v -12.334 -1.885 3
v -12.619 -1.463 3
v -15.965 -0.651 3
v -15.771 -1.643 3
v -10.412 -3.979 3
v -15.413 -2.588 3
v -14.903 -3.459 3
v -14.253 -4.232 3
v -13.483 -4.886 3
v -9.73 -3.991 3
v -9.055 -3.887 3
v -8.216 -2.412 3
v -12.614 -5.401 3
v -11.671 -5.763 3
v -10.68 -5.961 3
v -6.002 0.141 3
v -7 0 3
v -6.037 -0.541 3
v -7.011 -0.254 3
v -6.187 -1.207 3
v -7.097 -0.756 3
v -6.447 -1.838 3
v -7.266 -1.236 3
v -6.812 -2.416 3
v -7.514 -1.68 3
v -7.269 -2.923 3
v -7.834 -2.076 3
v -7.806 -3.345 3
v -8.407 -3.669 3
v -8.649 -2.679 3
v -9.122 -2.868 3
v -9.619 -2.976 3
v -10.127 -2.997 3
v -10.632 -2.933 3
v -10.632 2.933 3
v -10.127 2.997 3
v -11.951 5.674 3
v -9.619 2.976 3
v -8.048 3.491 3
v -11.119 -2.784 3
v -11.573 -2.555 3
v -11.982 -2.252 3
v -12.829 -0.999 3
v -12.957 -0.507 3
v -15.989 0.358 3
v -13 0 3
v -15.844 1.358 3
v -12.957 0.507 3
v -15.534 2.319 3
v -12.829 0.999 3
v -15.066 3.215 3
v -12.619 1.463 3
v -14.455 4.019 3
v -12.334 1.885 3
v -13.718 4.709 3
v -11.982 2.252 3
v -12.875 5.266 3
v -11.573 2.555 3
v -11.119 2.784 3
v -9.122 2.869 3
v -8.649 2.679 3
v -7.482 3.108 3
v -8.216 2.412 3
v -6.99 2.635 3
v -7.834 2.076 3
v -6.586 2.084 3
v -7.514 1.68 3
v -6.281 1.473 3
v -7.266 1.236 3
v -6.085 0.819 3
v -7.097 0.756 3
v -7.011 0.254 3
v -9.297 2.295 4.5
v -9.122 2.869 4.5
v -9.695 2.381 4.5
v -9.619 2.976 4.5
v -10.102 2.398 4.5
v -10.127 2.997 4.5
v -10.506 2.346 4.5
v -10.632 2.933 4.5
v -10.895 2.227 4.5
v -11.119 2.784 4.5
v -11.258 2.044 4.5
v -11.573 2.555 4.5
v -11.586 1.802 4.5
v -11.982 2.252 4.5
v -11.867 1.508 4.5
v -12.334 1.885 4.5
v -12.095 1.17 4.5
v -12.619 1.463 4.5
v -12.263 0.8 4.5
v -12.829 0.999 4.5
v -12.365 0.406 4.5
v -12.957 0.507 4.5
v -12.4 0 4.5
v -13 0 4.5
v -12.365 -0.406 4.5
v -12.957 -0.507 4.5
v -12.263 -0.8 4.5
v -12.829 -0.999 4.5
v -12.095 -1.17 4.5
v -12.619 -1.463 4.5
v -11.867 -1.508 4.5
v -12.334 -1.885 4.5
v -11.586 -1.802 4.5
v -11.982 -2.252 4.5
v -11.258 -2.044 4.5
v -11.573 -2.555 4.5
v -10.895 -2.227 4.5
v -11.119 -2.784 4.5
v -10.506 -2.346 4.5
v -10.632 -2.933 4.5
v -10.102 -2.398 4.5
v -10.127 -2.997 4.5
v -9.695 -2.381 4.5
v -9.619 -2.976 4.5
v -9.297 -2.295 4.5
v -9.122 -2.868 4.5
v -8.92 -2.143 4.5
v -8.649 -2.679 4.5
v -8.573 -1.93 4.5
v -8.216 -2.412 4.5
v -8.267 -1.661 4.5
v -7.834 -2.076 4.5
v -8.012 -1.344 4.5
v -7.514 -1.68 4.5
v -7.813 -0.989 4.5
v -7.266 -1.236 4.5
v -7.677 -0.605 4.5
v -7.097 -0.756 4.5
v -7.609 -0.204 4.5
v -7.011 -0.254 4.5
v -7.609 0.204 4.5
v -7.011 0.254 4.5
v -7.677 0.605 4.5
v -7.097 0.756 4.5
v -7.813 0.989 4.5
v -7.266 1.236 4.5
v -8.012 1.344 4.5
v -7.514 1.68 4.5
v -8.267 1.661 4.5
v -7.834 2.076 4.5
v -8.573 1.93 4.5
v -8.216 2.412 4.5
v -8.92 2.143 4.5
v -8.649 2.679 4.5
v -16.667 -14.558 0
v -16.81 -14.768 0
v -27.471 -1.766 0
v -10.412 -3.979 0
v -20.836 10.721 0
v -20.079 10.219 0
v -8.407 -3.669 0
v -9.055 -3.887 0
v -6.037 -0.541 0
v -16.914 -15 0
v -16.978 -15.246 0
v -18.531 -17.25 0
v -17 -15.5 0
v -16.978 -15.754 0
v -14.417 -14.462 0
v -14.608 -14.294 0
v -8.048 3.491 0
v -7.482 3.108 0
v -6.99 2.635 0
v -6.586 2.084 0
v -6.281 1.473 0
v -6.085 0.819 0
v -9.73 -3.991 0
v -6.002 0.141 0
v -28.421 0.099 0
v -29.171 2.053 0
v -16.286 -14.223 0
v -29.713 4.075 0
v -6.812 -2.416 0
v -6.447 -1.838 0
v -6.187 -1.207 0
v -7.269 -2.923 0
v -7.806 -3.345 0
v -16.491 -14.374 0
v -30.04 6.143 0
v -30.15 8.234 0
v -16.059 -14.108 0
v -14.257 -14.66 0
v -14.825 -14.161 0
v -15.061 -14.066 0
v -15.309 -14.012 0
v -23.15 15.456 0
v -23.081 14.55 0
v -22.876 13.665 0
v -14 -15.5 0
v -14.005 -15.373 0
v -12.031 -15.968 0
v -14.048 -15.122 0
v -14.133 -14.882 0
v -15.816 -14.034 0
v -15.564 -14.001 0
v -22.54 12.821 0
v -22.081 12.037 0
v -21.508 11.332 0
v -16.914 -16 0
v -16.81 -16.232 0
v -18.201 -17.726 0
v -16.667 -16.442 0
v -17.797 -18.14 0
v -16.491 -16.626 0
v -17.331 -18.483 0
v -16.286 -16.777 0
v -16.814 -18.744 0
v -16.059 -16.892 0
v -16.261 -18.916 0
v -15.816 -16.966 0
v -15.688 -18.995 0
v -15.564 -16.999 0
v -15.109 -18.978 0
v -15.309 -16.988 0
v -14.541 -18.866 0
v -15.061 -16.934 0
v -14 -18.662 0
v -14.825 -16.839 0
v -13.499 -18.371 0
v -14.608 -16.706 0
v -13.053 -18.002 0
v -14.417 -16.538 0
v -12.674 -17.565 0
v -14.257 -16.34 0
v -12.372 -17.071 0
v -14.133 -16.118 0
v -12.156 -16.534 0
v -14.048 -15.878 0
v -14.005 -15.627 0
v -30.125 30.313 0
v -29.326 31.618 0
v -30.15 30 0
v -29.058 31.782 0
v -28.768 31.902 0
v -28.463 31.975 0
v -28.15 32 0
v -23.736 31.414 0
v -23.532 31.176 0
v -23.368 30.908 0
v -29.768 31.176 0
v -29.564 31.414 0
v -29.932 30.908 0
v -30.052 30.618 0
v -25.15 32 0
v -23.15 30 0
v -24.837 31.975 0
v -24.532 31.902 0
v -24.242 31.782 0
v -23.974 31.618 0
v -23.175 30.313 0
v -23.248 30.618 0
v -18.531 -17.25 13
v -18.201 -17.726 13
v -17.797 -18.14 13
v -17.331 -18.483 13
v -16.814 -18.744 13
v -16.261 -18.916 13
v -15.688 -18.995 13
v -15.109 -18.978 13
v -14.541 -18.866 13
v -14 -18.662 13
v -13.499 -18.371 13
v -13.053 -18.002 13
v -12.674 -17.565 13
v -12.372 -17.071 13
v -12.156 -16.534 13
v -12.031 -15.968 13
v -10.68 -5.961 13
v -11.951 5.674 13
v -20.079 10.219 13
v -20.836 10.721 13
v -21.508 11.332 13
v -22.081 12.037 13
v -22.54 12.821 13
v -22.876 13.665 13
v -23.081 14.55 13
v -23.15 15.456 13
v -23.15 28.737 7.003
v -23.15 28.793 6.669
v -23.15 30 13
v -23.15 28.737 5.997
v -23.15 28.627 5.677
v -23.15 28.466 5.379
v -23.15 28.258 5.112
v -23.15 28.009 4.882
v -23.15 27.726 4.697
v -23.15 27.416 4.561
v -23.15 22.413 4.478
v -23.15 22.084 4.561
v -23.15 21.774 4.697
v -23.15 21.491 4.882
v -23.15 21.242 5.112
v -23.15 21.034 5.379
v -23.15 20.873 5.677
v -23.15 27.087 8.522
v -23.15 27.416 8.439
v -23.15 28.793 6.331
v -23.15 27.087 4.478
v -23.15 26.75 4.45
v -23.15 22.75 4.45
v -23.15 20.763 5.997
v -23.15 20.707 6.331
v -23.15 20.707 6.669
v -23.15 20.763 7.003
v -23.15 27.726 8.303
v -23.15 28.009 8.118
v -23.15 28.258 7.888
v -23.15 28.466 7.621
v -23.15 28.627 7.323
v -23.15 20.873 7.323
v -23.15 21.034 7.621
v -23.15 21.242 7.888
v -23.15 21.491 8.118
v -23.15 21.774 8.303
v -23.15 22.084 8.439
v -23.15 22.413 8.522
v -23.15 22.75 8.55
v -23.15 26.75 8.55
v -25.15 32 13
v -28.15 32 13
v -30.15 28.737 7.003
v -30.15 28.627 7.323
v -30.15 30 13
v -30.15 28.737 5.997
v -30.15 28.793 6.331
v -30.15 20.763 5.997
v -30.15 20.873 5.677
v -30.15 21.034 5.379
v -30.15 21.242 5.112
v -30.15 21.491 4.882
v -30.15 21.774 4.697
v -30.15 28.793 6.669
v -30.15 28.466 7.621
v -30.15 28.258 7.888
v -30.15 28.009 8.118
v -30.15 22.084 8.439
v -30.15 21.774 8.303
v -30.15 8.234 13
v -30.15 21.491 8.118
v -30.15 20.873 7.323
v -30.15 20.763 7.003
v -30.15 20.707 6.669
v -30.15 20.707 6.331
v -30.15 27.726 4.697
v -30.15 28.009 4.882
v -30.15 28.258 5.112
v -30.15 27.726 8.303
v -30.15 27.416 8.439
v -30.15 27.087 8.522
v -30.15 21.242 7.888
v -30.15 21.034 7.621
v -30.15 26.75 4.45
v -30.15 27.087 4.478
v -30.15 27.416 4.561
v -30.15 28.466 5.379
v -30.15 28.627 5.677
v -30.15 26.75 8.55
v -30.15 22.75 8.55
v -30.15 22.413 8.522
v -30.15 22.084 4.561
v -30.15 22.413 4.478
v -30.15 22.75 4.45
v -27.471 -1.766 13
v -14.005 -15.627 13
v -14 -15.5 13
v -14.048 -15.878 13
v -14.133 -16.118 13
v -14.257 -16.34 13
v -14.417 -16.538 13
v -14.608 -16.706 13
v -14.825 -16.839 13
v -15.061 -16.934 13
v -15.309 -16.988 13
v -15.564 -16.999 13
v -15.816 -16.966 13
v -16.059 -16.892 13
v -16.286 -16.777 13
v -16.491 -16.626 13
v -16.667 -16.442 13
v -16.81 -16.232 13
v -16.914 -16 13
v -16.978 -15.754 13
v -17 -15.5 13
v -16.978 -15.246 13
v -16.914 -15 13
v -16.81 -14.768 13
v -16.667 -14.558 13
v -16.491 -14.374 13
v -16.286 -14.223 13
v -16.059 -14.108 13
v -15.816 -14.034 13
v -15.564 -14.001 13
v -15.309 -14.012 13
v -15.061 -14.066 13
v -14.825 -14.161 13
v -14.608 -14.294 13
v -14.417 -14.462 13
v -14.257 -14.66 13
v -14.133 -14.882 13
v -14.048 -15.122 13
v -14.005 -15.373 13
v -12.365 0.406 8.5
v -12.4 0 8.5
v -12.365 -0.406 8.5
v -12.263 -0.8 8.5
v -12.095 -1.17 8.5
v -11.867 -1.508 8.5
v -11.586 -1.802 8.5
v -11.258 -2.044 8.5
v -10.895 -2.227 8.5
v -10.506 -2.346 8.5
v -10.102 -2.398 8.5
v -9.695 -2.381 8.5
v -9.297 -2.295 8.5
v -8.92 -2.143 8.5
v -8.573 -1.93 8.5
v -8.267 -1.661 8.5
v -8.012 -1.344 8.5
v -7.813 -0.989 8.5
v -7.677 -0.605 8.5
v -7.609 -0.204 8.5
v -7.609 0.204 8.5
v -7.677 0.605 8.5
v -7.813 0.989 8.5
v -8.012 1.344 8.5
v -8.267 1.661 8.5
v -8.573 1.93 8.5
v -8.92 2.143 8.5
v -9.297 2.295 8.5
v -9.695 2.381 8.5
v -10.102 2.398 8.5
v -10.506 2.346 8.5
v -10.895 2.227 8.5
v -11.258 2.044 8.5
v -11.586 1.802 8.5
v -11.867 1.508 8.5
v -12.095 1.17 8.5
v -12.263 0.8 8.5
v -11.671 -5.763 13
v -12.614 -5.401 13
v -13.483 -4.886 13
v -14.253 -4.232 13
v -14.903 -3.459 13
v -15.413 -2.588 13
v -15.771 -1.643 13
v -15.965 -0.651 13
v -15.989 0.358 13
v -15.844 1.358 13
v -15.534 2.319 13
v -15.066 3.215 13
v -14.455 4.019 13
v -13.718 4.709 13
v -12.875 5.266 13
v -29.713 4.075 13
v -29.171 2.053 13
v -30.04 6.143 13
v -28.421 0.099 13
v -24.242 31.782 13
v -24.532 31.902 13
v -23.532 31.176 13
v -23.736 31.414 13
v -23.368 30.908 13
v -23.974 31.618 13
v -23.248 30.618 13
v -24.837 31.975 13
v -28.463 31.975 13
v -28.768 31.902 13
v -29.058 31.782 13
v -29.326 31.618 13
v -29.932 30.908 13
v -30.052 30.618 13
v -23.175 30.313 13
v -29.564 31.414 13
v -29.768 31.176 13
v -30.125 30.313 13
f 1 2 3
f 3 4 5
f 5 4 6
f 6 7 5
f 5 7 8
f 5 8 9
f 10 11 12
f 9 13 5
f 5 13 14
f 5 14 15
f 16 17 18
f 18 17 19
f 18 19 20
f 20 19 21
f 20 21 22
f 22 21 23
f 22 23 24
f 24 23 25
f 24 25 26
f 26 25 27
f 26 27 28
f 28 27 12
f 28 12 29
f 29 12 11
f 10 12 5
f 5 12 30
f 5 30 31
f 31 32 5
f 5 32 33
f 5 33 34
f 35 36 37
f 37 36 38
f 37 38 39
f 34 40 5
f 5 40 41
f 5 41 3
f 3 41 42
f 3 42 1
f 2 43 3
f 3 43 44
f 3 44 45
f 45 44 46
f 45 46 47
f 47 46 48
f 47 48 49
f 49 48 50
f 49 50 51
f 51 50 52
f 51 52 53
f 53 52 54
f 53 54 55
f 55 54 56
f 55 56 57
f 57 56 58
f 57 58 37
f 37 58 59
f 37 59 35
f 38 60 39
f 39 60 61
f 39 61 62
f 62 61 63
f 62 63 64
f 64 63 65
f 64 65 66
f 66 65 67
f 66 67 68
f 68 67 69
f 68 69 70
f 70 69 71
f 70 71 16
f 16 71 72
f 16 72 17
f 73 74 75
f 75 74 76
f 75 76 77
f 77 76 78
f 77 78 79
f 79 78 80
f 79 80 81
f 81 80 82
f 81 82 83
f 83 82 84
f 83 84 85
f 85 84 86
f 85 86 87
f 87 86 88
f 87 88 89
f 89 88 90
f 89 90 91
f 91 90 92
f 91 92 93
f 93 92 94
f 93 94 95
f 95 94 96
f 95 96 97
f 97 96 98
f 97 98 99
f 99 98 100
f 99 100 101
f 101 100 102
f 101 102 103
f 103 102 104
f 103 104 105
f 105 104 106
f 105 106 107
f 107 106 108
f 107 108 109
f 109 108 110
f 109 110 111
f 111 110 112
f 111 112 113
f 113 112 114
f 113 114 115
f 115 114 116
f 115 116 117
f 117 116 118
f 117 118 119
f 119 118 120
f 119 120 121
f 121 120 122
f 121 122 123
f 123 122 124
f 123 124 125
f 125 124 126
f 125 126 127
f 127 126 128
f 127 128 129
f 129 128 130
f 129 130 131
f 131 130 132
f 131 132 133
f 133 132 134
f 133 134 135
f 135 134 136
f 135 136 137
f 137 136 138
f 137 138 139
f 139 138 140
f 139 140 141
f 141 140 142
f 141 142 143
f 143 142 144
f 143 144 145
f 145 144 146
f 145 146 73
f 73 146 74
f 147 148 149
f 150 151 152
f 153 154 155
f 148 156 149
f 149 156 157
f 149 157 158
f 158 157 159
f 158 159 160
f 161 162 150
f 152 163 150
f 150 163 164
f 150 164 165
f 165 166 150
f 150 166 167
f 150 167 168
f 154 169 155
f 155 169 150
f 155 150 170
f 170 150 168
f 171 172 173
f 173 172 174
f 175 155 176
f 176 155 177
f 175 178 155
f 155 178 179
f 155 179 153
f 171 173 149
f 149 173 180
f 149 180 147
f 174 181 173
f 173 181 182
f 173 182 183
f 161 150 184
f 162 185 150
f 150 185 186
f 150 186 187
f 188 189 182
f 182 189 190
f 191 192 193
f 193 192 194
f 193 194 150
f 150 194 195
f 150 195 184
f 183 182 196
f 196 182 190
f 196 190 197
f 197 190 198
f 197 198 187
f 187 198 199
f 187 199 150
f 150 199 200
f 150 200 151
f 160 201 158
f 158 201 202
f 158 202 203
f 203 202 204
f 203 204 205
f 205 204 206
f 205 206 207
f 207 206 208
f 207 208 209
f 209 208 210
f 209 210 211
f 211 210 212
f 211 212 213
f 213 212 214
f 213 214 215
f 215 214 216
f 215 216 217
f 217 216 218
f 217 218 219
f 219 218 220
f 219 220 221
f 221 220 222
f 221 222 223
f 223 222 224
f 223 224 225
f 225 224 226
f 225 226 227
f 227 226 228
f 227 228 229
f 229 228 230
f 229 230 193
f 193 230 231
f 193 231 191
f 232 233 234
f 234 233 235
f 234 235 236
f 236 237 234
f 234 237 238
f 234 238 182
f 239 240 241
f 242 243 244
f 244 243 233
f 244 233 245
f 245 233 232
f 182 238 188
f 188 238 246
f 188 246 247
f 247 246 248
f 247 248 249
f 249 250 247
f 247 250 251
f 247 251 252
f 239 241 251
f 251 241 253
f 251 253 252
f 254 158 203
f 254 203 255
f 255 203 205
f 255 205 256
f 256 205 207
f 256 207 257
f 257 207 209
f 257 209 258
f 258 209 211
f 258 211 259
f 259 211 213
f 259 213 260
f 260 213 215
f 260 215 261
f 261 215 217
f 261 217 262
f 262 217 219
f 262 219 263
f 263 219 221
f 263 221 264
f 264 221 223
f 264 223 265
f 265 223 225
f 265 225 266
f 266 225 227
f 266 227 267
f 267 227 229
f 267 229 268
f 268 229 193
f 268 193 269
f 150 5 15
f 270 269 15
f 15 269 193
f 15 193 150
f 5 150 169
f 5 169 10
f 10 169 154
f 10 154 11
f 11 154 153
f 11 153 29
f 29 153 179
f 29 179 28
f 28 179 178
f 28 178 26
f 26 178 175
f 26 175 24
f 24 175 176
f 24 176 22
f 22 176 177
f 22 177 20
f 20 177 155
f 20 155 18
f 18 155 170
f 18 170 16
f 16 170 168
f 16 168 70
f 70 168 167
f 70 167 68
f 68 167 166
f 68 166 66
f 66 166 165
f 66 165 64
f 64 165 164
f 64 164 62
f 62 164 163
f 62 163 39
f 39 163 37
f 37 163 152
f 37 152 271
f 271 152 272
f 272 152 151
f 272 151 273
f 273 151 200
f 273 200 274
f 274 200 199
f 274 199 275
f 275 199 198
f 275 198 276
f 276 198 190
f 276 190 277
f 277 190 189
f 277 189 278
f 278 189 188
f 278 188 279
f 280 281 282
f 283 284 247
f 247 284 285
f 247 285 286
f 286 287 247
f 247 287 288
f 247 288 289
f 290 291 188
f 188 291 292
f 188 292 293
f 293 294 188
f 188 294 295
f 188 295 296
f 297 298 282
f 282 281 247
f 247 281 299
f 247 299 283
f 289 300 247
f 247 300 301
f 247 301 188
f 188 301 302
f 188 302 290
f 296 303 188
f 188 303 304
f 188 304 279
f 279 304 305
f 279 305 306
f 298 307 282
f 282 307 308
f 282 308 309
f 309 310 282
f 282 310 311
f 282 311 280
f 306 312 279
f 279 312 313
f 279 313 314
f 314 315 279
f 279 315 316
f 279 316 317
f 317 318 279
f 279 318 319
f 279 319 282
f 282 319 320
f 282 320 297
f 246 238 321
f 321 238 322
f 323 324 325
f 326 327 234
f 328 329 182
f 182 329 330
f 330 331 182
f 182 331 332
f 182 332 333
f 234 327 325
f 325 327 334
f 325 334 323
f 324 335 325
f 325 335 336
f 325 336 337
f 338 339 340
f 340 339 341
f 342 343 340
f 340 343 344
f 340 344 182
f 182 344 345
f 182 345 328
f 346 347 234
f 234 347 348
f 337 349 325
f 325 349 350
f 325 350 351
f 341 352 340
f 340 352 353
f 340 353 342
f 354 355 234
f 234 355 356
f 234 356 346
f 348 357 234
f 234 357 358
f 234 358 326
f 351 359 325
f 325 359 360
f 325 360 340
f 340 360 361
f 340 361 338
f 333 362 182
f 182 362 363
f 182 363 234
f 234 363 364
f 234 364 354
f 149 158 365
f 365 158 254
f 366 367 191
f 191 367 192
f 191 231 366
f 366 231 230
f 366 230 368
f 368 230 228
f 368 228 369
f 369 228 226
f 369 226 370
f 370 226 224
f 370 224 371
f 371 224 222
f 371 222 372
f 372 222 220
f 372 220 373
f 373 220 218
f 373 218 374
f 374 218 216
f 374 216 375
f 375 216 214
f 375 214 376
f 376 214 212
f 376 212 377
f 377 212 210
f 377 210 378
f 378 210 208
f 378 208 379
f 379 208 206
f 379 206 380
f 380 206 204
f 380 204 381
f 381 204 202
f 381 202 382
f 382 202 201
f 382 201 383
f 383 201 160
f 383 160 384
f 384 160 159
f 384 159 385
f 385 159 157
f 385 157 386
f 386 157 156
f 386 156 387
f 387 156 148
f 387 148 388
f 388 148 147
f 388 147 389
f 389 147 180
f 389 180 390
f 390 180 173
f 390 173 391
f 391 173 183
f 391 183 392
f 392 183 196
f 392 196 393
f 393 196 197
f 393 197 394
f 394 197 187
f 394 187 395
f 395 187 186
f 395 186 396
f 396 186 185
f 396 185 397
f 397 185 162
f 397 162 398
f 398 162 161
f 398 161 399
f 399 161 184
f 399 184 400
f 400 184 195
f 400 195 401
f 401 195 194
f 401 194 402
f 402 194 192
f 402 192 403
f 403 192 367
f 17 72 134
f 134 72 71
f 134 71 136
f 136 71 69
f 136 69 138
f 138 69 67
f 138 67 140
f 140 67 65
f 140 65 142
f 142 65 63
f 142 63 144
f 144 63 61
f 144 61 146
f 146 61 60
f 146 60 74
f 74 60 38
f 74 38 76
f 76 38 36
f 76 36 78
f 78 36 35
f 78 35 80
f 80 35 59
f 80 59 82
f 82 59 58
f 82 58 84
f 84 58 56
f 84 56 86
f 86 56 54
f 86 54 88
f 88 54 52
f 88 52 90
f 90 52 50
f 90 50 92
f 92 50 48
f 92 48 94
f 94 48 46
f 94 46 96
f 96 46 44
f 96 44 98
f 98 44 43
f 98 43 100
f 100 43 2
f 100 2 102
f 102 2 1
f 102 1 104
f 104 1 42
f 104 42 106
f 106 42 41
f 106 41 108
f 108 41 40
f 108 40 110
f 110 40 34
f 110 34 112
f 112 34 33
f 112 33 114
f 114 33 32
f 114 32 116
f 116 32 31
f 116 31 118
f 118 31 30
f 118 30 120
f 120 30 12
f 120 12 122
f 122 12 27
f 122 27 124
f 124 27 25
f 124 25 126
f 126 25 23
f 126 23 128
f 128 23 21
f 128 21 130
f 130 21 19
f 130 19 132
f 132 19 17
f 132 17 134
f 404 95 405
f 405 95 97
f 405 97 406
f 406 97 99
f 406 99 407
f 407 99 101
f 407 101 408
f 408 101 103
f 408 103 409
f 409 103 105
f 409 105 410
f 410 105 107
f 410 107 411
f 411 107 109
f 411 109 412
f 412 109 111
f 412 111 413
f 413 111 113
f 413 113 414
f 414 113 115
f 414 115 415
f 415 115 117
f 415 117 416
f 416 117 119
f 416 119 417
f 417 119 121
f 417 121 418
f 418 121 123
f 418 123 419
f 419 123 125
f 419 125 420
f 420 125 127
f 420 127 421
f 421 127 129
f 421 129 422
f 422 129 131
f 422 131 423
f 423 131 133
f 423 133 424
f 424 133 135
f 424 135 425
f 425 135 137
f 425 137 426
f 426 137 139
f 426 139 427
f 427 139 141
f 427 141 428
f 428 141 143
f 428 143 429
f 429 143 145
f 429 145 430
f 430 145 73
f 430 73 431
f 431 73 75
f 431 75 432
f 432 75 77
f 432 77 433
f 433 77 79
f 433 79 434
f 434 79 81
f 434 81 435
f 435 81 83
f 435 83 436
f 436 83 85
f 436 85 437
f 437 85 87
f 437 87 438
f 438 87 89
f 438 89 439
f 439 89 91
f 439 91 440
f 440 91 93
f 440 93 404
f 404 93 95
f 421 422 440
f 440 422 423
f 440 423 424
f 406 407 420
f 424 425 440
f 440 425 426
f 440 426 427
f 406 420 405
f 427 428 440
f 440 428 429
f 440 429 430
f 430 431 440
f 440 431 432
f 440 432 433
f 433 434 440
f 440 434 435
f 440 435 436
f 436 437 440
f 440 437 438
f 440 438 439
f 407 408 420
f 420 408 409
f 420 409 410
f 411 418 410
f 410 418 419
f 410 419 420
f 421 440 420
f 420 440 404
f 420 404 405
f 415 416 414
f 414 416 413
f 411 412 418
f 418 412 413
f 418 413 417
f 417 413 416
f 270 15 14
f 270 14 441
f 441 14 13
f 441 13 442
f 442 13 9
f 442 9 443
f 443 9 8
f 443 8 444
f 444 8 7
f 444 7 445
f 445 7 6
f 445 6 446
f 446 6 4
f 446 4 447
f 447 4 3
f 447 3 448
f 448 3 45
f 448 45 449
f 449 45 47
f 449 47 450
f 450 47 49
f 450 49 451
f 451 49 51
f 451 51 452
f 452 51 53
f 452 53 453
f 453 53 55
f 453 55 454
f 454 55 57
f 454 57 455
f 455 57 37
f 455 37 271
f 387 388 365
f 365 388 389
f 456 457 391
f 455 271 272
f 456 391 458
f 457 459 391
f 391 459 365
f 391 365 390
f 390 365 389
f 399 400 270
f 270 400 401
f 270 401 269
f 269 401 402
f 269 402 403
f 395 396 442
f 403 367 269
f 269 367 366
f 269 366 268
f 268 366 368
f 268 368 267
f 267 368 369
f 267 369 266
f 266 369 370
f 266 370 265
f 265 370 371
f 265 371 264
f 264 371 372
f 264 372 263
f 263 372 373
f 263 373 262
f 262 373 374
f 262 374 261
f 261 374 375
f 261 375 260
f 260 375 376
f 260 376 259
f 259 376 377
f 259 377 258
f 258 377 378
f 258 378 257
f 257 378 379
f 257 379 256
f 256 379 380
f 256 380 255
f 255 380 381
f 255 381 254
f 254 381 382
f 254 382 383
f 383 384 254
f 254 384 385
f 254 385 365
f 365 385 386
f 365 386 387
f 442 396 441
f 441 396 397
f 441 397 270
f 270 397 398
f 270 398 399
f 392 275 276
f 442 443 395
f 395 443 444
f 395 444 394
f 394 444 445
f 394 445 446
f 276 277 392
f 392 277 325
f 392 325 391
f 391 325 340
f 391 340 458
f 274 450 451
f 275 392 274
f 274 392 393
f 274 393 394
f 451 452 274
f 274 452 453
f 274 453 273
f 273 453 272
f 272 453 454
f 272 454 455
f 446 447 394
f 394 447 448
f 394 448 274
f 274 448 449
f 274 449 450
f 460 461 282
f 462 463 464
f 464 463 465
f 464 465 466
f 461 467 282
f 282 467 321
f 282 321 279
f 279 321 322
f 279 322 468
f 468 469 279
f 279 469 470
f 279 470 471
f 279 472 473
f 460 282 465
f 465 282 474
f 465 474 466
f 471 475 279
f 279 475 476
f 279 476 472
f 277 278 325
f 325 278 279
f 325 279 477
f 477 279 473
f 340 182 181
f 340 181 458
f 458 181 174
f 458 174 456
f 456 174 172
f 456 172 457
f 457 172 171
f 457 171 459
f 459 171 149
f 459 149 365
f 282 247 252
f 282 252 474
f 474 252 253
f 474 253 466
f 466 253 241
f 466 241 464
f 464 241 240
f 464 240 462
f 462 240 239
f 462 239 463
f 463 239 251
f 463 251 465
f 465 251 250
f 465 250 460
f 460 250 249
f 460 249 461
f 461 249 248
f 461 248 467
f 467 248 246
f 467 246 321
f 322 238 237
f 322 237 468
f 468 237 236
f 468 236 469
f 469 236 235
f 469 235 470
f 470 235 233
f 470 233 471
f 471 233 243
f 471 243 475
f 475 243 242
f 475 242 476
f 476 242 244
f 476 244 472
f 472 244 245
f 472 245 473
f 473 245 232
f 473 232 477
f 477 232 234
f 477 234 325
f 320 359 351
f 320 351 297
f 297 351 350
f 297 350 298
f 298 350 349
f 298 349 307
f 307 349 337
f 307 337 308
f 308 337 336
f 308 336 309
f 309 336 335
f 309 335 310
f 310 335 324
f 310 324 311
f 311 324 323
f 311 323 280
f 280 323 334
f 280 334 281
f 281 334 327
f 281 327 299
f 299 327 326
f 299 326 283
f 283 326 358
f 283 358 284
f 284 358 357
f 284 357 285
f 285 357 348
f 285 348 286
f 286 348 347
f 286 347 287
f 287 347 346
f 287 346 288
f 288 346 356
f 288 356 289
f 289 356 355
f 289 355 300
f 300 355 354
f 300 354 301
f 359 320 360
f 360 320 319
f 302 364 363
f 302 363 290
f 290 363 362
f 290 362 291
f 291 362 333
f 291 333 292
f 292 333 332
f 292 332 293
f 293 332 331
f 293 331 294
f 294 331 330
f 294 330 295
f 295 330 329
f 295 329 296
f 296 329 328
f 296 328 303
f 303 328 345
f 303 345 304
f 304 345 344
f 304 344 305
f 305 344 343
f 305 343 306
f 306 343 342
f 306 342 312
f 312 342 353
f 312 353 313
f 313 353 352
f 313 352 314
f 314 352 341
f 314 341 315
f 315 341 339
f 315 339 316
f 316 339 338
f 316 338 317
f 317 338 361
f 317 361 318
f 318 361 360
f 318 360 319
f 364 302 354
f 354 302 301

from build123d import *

# Parameters (mm, degrees)
SKETCH1_R           = 1.5
BOSS_EXTRUDE1_DEPTH = 3
SKETCH2_R           = 3
BOSS_EXTRUDE2_DEPTH = 1.5
SKETCH3_R           = 2.4
BOSS_EXTRUDE3_DEPTH = 4
SKETCH4_R           = 1.5
BOSS_EXTRUDE4_DEPTH = 10
FILLET1_R           = 20
FILLET2_R           = 2
CUT_EXTRUDE1_DEPTH  = 25.15


with BuildPart() as part:
    # Sketch1 → Boss-Extrude1 (new body)
    with BuildSketch(Plane.XY):
        with BuildLine():
            Line((-12.031480134, -15.968369445), (-10.412459505, -3.978677815))
            ThreePointArc((-10.412459505, -3.978677815), (-6.186542438, -1.207286803), (-8.04761466, 3.491159046))
            Line((-8.04761466, 3.491159046), (-20.07857801, 10.219318997))
            ThreePointArc((-20.07857801, 10.219318997), (-22.325493603, 12.420556624), (-23.15, 15.456057566))
            Line((-23.15, 15.456057566), (-23.15, 32))
            Line((-23.15, 32), (-30.15, 32))
            Line((-30.15, 32), (-30.15, 2.874544331))
            Line((-30.15, 2.874544331), (-18.531088913, -17.25))
            ThreePointArc((-18.531088913, -17.25), (-14.822887986, -18.933878175), (-12.031480134, -15.968369445))
        make_face()
        with Locations((-15.5, -15.5)):
            Circle(SKETCH1_R, mode=Mode.SUBTRACT)
    extrude(amount=BOSS_EXTRUDE1_DEPTH)

    # Sketch2 → Boss-Extrude2 (add)
    with BuildSketch(Plane.XY.offset(3)):
        with Locations((-10, 0)):
            Circle(SKETCH2_R)
    extrude(amount=BOSS_EXTRUDE2_DEPTH)

    # Sketch3 → Boss-Extrude3 (add)
    with BuildSketch(Plane.XY.offset(4.5)):
        with Locations((-10, 0)):
            Circle(SKETCH3_R)
    extrude(amount=BOSS_EXTRUDE3_DEPTH)

    # Sketch4 → Boss-Extrude4 (add)
    with BuildSketch(Plane.XY.offset(3)):
        with BuildLine():
            Line((-12.031480134, -15.968369445), (-10.680184518, -5.96132108))
            ThreePointArc((-10.680184518, -5.96132108), (-15.964537986, -0.651372866), (-11.950849133, 5.673992215))
            Line((-11.950849133, 5.673992215), (-20.07857801, 10.219318997))
            ThreePointArc((-20.07857801, 10.219318997), (-22.325493603, 12.420556624), (-23.15, 15.456057566))
            Line((-23.15, 15.456057566), (-23.15, 32))
            Line((-23.15, 32), (-30.15, 32))
            Line((-30.15, 32), (-30.15, 2.874544331))
            Line((-30.15, 2.874544331), (-18.531088913, -17.25))
            ThreePointArc((-18.531088913, -17.25), (-14.822887986, -18.933878175), (-12.031480134, -15.968369445))
        make_face()
        with Locations((-15.5, -15.5)):
            Circle(SKETCH4_R, mode=Mode.SUBTRACT)
    extrude(amount=BOSS_EXTRUDE4_DEPTH)

    # Fillet1
    fillet1_edges = [part.edges().sort_by_distance(p)[0] for p in [
        (-30.15, 2.874544331, 6.5),
    ]]
    fillet(fillet1_edges, radius=FILLET1_R)

    # Fillet2
    fillet2_edges = [part.edges().sort_by_distance(p)[0] for p in [
        (-30.15, 32, 6.5),
        (-23.15, 32, 6.5),
    ]]
    fillet(fillet2_edges, radius=FILLET2_R)

    # Sketch5 → Cut-Extrude1 (cut, through all)
    with BuildSketch(Plane.ZY.offset(30.15)):
        with BuildLine():
            Line((8.55, 26.75), (8.55, 22.75))
            ThreePointArc((8.55, 22.75), (6.5, 20.7), (4.45, 22.75))
            Line((4.45, 22.75), (4.45, 26.75))
            ThreePointArc((4.45, 26.75), (6.5, 28.8), (8.55, 26.75))
        make_face()
    extrude(amount=-CUT_EXTRUDE1_DEPTH, mode=Mode.SUBTRACT)


solid = part.part
